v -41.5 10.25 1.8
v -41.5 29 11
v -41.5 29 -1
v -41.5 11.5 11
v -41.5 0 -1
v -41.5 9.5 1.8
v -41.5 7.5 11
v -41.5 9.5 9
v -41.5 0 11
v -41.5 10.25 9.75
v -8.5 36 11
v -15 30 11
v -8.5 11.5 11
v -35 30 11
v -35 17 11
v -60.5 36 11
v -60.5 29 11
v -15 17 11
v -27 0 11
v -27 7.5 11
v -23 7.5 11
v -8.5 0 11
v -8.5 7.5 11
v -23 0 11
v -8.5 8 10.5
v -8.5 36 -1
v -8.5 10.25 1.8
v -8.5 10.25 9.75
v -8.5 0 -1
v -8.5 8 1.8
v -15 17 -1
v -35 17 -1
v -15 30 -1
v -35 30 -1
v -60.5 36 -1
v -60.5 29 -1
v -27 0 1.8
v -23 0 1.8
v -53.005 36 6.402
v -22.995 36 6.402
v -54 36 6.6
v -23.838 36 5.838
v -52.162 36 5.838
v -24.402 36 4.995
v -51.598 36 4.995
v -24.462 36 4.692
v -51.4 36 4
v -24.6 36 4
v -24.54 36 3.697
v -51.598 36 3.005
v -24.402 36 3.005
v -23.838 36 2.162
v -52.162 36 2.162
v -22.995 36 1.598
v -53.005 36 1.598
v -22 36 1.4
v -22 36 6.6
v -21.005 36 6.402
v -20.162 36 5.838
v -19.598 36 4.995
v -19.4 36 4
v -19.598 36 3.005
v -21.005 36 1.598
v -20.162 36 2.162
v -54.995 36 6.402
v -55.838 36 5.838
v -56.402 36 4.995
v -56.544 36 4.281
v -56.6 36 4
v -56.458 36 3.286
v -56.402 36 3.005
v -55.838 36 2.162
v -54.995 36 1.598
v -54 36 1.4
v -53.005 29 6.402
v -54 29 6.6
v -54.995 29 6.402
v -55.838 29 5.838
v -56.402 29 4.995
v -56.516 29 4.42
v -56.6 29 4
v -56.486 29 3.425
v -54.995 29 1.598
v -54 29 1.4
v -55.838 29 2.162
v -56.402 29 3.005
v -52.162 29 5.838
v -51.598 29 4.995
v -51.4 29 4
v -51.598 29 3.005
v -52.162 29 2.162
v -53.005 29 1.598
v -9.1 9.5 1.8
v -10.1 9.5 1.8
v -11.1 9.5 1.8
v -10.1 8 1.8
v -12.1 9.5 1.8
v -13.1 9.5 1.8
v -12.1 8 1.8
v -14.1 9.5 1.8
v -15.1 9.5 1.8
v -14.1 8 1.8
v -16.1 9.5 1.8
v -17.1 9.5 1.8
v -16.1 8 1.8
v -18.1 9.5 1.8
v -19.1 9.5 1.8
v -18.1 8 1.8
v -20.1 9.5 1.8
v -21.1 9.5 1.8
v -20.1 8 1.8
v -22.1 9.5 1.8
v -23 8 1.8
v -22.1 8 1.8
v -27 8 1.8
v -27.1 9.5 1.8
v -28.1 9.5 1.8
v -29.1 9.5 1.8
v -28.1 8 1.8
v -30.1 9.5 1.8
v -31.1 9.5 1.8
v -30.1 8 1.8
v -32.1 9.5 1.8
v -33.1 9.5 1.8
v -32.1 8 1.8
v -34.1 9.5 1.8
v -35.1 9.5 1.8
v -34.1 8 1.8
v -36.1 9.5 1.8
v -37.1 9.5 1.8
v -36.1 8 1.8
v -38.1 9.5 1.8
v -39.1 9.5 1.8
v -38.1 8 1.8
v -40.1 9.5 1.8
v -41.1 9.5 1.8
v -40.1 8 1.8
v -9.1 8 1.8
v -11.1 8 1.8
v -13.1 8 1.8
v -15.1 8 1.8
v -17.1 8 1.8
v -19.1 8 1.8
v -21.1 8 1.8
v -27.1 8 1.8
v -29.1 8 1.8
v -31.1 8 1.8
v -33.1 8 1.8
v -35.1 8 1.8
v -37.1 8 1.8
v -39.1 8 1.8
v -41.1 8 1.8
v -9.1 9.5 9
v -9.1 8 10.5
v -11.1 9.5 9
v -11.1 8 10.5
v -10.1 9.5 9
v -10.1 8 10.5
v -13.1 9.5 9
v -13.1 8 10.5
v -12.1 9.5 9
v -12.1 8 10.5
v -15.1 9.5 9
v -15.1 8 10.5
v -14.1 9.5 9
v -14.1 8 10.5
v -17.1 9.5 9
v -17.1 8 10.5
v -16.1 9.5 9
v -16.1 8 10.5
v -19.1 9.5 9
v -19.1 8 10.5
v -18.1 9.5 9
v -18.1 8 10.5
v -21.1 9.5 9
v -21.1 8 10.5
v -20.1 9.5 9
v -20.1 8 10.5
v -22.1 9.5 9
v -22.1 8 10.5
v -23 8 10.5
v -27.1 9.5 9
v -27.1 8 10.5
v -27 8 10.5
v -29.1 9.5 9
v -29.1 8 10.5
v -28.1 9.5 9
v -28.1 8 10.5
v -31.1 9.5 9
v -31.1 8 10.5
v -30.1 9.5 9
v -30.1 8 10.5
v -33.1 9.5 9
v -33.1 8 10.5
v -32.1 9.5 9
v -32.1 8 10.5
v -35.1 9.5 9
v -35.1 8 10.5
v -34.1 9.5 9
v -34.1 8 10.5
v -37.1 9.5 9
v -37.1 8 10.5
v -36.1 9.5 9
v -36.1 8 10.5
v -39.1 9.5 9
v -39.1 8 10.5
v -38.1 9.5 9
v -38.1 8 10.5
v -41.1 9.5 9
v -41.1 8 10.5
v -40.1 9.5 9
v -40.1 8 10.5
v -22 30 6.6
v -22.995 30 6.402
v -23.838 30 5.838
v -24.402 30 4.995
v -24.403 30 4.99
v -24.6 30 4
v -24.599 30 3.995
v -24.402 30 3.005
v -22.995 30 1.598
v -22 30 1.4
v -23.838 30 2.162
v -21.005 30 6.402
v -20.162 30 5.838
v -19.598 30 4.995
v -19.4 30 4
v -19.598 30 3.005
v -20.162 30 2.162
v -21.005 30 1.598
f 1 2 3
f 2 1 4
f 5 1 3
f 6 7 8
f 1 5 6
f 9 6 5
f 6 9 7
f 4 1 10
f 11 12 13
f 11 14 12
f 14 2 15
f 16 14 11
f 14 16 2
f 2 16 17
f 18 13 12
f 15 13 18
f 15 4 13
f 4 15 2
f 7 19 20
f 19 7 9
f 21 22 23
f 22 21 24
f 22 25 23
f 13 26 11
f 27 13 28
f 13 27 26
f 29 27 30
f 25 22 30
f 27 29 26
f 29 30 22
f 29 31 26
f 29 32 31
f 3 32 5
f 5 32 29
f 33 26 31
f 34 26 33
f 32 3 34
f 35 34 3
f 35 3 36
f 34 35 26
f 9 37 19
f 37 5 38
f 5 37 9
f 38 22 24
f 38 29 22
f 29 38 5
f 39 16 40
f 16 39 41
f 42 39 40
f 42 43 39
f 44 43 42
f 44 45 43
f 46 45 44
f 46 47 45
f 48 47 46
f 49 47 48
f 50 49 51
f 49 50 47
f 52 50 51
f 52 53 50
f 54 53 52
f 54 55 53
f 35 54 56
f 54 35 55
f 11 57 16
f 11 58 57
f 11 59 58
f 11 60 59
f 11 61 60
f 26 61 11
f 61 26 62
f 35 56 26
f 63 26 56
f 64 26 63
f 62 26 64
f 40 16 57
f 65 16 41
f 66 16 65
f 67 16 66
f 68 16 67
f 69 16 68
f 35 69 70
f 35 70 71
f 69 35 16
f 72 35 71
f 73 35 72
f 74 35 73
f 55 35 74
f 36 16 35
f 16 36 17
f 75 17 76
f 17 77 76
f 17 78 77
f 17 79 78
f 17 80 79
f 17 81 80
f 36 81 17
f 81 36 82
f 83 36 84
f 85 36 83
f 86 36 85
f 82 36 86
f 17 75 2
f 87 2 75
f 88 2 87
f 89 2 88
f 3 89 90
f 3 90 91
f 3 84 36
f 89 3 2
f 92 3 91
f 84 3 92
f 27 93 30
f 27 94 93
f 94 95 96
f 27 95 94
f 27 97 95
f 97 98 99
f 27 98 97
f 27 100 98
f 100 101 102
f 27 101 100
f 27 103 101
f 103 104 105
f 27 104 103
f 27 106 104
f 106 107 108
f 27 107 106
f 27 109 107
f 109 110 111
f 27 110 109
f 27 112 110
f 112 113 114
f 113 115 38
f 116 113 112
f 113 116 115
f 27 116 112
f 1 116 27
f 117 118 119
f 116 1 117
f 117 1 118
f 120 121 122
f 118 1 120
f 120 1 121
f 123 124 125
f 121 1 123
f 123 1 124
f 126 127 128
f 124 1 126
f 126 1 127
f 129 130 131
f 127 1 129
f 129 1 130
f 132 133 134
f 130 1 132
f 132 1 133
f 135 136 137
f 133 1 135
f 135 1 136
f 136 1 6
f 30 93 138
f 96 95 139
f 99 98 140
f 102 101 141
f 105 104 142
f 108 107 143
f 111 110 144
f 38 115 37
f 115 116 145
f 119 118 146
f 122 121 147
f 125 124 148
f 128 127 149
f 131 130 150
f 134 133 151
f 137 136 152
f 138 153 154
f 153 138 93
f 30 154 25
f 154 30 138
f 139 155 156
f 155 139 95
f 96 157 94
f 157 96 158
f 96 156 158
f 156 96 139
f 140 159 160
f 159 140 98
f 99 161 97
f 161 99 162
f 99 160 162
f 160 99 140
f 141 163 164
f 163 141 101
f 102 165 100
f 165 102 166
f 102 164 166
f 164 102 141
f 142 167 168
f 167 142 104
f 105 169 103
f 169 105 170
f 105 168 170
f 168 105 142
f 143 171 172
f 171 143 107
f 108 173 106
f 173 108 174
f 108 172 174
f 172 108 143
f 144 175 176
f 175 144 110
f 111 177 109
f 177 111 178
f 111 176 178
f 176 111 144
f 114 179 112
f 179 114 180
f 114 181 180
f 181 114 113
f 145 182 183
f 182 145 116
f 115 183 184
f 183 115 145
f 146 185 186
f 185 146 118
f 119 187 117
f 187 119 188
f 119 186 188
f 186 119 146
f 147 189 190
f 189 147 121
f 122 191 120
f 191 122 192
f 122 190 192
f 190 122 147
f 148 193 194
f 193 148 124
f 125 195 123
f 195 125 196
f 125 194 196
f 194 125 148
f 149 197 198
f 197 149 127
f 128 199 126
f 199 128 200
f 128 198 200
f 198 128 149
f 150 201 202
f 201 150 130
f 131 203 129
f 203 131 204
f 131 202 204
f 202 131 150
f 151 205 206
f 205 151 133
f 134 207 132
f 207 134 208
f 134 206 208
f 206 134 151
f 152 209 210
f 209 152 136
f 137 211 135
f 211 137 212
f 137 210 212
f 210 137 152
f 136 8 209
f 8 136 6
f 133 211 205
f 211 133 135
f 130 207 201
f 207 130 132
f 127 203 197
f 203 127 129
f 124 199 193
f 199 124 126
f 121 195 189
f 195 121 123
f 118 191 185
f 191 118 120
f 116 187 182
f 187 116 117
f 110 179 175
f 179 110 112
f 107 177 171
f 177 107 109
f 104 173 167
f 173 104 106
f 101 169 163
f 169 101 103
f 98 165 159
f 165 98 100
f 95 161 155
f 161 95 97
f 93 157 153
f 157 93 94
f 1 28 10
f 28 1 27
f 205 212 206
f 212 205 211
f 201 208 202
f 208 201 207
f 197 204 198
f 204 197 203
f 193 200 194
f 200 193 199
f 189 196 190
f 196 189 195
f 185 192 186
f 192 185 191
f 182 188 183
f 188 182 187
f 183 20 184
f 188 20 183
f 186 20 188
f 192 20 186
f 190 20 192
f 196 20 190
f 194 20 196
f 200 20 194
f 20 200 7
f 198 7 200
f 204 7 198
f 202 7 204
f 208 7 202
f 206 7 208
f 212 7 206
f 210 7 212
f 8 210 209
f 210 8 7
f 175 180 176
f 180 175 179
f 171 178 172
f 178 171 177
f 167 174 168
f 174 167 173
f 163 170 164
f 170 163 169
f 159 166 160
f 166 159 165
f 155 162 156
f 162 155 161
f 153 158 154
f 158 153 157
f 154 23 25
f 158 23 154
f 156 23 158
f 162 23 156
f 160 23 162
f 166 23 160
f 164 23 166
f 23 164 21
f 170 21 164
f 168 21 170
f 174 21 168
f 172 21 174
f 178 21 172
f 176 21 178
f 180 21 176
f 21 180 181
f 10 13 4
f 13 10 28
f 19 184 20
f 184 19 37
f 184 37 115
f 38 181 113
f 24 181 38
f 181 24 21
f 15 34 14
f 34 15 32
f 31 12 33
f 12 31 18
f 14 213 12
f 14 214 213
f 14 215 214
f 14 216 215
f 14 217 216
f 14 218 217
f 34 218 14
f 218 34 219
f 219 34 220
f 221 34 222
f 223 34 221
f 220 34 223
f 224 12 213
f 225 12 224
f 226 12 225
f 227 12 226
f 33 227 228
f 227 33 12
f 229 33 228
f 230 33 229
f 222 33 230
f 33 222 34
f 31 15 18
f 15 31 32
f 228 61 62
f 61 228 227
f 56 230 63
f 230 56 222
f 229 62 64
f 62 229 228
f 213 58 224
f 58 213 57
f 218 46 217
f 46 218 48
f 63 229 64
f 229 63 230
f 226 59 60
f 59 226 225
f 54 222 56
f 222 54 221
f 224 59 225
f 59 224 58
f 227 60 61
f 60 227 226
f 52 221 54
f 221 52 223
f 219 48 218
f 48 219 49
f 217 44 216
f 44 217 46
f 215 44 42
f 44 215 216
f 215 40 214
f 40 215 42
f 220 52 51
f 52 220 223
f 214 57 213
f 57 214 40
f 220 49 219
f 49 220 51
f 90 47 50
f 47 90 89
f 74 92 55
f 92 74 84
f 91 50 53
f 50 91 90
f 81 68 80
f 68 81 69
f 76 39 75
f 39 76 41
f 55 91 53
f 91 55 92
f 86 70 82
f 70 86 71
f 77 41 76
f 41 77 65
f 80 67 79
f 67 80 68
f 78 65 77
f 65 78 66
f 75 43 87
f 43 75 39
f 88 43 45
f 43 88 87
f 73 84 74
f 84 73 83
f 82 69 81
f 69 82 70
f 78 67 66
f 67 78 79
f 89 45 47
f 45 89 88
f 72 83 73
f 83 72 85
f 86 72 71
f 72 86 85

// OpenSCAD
// file: ../configuration.scad
/*
	Konfiguracni soubor 3D tiskarny RebeliX X2
	
	Sledujte nas na:		  
			www.RepRap4U.cz
			www.facebook.com/RebeliX.cz
			https://twitter.com/reprap4u
			https://plus.google.com/+Reprap4uCz-3Dtiskarna-RebeliX
*/

/*================ Slic3r nastaveni ==========================*/

// Vyska vrstvy pro tisknuti dilu [mm]
layer_height = 0.3;

// Sirka vytlacovaneho materialu [mm]
extrusion_width = 0.66; //Slic3r->Print Settings->Advanced->Default extrusion width

/*==================== M6 sroub ==============================*/

// Rezerva prumeru hlavy sroubu [mm]
space = 1;

// Prumer hlavy M6 sroubu (pricte se rezerva) [mm]
M6_head_diameter = 10.6+space;
//M6_head_diameter = 12+space;

// Vyska hlavy M6 sroubu (dulezite pro zapusteni hlavy sroubu do plastu) [mm]
M6_head_height = 3.6;
//M6_head_height = 4.5;

// Delka sroubu M6 [mm]
// M6x12
M6_lenght = 12;

/*=================== Nastaveni dilu =========================*/

// Posun Z zakladny
z_base_offset = 11;

// Tloustka rohovych spojek
// 5 mm => sroub M6x14 s podlozkou
// 3 mm => sroub M6x12 s podlozkou
coupler_thickness = 7;

// Prumer 8mm tyce
rod_8mm_d = 8.2;

// Posun drzacku mezi x-motor a x-end
x_holder_position = 6.5;

/*======================== Motory ============================*/

// Delka motoru (ovlivni dily a delky tyci pro osy Z a Y)
//SX17-1003LQFE (doporuceno hlavne na osu Z)
//motor_length = 29.5;
//SX17-1003 (doporuceno hlavne na osu Z), SX17-0503LQEF
motor_length = 34;
//SX17-1005
//motor_length = 40;
//SX17-0905 - zde je jiz problem s velkou vyskou motoru na ose Z - musi se upravit endstop-holder
//motor_length = 48;

/*================ Remeny a remenicky ========================*/

// GT2 
belt_tooth_distance = 2;
belt_tooth_ratio = 0.5;

// T2.5
//belt_tooth_distance = 2.5;
//belt_tooth_ratio = 0.68;
// main file
// PRUSA iteration3
// y-belt-holder
// GNU GPL v3
// Josef Průša <iam@josefprusa.cz> and contributors
// http://www.reprap.org/wiki/Prusa_Mendel
// http://prusamendel.org

include <../configuration.scad>

height = 12;

module belt_holder_base(){
 translate([-33-8.5,0,-1]) cube([33,15,height]); 
 //translate([-33-8.5,11,-1]) cube([33,15,16]);
 translate([-33-8.5,11,-1]) cube([33,25,height]);
 //translate([-50,22,-1]) cube([50,4,16]);
 translate([-60.5,29,-1]) cube([52,7,height]); 
}

module belt_holder_beltcut(){
 echo(belt_tooth_ratio*belt_tooth_distance);
 position_tweak=-1.1;
 // Belt slit
 translate([-66,-0.5+10,height/2 - 3.2 -1]) cube([67,0.55+0.20,15]);
 // Smooth insert cutout
 translate([-66,-0.5+10,height-3]) rotate([45,0,0]) cube([67,15,15]);
 // Individual teeth
for ( i = [0 : 23] ){
  translate([0-i*belt_tooth_distance+position_tweak,-0.5+8.5,height/2 - 3.2 -1]) cube([belt_tooth_ratio*belt_tooth_distance,1.7,15]);
 }
 // Middle opening
 translate([-2-25,-1,height/2 - 3.2 - 1]) cube([4,11,15]);	
 
 translate([-33-8.5+33/2-20/2,17,-2]) cube([20,13,20]);
}

module belt_holder_holes(){
 translate([-22,29.9,4]) rotate([-90,0,0]) cylinder(h=20, r=2.6, $fn=16);
 translate([-22- 32,0.1,4]) rotate([-90,0,0]) cylinder(h=50, r=2.6, $fn=16);
 // Vyrez pro hlavicku M3 sroubku
 //translate([-4.5,32,height/2 - 1]) rotate([90,0,0]) cylinder(h=50, r=3.8, $fn=32);
 //translate([-45.5,32,height/2 - 1]) rotate([90,0,0]) cylinder(h=50, r=3.8, $fn=32);
}

// Final part
module belt_holder(){
 difference(){
  belt_holder_base();
  belt_holder_beltcut();
  belt_holder_holes();
 }
}

belt_holder();
